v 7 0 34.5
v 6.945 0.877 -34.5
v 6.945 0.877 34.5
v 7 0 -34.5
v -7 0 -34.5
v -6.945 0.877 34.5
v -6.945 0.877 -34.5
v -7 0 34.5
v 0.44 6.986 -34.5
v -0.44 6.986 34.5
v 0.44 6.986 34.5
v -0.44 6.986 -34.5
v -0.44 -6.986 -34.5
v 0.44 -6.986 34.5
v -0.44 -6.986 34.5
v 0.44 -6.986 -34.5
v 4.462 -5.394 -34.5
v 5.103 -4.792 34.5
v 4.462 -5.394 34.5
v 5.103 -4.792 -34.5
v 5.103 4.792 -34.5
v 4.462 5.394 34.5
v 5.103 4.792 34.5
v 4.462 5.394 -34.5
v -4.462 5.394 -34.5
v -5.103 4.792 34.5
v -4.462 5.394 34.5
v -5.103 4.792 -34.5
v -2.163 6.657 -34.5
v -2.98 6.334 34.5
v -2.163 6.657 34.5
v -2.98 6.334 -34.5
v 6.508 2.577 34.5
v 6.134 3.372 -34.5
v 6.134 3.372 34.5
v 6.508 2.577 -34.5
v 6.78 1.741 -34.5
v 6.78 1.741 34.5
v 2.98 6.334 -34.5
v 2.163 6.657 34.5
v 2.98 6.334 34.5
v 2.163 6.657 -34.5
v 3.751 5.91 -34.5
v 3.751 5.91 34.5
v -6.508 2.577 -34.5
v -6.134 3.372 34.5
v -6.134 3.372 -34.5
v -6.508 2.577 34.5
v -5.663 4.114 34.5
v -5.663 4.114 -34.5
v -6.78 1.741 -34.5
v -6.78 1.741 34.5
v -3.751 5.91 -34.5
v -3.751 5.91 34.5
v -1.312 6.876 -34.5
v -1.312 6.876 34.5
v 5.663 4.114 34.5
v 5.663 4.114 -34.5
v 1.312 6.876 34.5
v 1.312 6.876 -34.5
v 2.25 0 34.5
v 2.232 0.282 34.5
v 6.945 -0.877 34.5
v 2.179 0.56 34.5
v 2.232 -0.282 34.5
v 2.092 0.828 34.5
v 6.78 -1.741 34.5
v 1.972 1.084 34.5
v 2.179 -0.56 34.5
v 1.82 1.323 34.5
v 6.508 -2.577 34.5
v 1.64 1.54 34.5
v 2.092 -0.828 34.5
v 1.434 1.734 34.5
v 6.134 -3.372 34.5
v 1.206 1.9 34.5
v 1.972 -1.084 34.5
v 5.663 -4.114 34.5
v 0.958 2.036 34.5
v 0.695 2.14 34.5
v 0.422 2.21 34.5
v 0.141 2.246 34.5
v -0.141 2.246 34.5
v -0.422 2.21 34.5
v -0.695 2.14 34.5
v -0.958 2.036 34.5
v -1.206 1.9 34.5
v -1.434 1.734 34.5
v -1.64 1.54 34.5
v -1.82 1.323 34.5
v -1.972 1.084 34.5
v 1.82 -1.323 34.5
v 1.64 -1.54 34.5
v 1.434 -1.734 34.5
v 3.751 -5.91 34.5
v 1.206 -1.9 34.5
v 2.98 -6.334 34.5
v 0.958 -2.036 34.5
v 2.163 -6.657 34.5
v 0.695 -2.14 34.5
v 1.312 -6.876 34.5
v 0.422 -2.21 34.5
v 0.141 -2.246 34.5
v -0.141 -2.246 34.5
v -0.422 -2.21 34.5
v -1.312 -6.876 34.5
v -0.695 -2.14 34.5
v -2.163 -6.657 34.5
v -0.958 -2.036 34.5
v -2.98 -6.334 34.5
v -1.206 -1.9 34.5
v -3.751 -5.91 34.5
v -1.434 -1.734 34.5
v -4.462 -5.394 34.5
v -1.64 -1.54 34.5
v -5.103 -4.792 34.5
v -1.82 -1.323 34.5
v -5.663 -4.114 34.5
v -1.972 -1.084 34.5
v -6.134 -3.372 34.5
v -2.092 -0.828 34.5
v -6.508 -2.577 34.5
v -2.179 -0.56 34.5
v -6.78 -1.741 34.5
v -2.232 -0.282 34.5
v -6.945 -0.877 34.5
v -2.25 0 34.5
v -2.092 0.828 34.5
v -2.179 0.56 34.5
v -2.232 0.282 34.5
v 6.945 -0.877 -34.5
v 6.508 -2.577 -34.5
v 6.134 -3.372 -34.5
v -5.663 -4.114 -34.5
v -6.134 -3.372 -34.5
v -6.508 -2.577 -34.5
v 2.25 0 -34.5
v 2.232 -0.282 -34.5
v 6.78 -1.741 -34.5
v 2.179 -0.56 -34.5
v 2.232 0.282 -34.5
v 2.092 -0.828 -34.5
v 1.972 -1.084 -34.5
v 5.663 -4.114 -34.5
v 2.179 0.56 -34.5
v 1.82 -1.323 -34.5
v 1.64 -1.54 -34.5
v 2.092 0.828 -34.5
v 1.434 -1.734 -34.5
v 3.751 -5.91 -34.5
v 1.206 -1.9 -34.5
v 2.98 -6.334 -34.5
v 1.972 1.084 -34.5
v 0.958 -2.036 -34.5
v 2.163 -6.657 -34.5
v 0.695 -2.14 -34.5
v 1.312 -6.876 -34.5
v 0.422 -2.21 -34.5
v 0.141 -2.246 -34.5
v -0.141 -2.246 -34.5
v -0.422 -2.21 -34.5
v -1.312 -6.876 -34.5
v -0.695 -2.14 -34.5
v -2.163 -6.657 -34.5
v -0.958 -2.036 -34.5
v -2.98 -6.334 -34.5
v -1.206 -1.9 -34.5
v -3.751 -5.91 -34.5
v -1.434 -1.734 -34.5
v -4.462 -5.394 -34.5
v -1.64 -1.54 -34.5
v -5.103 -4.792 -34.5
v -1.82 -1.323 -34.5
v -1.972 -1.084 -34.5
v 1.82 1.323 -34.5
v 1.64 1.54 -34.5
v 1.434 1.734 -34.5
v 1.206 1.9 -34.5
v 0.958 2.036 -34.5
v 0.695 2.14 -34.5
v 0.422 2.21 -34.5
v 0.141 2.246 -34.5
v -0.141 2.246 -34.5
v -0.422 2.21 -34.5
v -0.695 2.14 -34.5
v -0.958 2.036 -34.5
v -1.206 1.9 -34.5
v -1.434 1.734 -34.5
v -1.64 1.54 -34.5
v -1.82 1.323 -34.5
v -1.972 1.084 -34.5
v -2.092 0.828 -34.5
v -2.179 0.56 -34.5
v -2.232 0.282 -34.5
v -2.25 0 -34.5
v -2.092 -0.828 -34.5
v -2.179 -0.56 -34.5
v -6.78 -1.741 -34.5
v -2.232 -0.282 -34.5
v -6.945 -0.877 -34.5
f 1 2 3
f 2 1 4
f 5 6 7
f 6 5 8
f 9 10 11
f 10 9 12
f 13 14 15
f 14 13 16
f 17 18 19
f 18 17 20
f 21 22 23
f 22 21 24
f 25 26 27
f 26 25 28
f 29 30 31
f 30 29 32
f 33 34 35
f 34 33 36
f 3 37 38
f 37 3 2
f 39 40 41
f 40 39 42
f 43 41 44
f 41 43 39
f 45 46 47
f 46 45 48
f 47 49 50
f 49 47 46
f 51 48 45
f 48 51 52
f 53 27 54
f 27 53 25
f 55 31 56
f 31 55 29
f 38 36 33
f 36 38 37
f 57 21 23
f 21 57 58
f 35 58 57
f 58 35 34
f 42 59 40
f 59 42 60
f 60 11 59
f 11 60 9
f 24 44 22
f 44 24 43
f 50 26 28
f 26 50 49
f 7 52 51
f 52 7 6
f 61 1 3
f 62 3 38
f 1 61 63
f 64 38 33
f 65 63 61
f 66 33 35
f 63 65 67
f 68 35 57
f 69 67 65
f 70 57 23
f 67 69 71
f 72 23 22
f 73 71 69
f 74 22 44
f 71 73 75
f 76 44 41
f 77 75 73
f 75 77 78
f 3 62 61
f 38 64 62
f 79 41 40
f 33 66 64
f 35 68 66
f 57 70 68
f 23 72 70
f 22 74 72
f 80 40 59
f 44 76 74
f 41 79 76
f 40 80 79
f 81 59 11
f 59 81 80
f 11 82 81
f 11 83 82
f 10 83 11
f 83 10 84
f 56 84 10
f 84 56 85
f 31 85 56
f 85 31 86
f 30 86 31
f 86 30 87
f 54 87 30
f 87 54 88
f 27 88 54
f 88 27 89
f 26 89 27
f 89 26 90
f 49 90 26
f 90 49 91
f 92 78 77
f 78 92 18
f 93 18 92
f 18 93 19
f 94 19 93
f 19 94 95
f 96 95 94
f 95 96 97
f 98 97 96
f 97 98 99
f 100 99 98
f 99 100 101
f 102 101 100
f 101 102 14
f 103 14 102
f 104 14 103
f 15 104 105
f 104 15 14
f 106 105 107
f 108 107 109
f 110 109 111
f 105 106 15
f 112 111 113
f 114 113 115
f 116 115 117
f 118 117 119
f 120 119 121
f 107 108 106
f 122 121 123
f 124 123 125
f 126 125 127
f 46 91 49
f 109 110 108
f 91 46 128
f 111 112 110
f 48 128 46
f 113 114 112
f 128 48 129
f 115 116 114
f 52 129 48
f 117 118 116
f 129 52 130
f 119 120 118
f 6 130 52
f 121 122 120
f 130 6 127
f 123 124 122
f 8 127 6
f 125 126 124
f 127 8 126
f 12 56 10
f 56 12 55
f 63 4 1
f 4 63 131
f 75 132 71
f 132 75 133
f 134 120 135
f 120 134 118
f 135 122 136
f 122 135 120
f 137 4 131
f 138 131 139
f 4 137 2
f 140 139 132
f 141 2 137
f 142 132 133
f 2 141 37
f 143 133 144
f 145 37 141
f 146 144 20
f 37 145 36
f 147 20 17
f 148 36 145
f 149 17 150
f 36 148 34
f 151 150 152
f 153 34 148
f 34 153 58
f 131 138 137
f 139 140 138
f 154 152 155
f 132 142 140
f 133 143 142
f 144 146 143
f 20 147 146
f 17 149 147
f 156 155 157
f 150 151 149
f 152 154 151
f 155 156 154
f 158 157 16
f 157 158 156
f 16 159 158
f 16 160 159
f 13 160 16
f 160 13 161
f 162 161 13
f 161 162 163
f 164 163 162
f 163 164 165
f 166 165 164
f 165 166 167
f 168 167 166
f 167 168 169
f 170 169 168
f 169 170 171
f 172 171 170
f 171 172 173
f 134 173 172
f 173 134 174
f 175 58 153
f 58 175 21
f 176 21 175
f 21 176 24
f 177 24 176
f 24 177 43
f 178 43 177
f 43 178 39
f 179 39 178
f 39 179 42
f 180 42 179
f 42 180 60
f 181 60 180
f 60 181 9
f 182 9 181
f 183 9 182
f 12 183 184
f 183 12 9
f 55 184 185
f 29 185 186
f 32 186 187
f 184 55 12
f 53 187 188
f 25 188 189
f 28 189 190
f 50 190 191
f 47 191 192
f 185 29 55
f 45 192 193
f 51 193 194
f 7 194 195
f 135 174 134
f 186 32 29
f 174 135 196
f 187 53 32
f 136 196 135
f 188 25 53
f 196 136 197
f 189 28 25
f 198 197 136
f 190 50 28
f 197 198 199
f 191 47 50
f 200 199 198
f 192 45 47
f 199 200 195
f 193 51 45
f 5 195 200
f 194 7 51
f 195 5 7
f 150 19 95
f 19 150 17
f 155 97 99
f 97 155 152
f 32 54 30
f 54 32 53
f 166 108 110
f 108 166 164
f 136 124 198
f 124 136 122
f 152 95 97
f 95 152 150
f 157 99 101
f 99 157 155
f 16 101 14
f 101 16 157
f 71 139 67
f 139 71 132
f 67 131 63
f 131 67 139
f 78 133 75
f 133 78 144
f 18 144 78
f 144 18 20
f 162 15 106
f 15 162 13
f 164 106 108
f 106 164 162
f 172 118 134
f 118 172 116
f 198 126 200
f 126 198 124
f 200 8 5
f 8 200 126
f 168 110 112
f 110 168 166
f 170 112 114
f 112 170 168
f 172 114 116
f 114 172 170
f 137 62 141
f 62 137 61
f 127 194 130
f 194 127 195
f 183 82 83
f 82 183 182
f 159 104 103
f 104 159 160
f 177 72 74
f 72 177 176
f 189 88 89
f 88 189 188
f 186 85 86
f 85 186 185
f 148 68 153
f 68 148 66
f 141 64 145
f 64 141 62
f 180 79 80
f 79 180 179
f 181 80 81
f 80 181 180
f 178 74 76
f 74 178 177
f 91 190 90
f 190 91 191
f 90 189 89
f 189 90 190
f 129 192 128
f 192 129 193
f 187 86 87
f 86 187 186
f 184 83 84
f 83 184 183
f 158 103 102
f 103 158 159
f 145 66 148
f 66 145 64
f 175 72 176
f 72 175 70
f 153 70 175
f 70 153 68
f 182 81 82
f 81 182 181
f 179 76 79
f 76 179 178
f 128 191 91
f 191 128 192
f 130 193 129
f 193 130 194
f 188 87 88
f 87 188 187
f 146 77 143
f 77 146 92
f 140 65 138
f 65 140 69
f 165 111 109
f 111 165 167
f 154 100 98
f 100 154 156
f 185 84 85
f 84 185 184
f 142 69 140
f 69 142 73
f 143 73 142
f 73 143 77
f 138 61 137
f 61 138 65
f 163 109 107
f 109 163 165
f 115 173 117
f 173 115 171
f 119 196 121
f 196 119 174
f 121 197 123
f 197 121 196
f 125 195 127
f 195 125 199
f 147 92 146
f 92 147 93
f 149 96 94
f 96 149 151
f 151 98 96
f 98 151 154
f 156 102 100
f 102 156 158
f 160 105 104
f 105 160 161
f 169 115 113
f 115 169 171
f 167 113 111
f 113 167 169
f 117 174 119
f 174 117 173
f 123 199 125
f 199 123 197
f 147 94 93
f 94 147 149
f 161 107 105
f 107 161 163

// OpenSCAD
$fn = 50;


difference() {
	union() {
		translate(v = [0, 0, -34.5000000000]) {
			cylinder(h = 69, r = 7.0000000000);
		}
	}
	union() {
		translate(v = [0, 0, -100.0000000000]) {
			cylinder(h = 200, r = 2.2500000000);
		}
	}
}
